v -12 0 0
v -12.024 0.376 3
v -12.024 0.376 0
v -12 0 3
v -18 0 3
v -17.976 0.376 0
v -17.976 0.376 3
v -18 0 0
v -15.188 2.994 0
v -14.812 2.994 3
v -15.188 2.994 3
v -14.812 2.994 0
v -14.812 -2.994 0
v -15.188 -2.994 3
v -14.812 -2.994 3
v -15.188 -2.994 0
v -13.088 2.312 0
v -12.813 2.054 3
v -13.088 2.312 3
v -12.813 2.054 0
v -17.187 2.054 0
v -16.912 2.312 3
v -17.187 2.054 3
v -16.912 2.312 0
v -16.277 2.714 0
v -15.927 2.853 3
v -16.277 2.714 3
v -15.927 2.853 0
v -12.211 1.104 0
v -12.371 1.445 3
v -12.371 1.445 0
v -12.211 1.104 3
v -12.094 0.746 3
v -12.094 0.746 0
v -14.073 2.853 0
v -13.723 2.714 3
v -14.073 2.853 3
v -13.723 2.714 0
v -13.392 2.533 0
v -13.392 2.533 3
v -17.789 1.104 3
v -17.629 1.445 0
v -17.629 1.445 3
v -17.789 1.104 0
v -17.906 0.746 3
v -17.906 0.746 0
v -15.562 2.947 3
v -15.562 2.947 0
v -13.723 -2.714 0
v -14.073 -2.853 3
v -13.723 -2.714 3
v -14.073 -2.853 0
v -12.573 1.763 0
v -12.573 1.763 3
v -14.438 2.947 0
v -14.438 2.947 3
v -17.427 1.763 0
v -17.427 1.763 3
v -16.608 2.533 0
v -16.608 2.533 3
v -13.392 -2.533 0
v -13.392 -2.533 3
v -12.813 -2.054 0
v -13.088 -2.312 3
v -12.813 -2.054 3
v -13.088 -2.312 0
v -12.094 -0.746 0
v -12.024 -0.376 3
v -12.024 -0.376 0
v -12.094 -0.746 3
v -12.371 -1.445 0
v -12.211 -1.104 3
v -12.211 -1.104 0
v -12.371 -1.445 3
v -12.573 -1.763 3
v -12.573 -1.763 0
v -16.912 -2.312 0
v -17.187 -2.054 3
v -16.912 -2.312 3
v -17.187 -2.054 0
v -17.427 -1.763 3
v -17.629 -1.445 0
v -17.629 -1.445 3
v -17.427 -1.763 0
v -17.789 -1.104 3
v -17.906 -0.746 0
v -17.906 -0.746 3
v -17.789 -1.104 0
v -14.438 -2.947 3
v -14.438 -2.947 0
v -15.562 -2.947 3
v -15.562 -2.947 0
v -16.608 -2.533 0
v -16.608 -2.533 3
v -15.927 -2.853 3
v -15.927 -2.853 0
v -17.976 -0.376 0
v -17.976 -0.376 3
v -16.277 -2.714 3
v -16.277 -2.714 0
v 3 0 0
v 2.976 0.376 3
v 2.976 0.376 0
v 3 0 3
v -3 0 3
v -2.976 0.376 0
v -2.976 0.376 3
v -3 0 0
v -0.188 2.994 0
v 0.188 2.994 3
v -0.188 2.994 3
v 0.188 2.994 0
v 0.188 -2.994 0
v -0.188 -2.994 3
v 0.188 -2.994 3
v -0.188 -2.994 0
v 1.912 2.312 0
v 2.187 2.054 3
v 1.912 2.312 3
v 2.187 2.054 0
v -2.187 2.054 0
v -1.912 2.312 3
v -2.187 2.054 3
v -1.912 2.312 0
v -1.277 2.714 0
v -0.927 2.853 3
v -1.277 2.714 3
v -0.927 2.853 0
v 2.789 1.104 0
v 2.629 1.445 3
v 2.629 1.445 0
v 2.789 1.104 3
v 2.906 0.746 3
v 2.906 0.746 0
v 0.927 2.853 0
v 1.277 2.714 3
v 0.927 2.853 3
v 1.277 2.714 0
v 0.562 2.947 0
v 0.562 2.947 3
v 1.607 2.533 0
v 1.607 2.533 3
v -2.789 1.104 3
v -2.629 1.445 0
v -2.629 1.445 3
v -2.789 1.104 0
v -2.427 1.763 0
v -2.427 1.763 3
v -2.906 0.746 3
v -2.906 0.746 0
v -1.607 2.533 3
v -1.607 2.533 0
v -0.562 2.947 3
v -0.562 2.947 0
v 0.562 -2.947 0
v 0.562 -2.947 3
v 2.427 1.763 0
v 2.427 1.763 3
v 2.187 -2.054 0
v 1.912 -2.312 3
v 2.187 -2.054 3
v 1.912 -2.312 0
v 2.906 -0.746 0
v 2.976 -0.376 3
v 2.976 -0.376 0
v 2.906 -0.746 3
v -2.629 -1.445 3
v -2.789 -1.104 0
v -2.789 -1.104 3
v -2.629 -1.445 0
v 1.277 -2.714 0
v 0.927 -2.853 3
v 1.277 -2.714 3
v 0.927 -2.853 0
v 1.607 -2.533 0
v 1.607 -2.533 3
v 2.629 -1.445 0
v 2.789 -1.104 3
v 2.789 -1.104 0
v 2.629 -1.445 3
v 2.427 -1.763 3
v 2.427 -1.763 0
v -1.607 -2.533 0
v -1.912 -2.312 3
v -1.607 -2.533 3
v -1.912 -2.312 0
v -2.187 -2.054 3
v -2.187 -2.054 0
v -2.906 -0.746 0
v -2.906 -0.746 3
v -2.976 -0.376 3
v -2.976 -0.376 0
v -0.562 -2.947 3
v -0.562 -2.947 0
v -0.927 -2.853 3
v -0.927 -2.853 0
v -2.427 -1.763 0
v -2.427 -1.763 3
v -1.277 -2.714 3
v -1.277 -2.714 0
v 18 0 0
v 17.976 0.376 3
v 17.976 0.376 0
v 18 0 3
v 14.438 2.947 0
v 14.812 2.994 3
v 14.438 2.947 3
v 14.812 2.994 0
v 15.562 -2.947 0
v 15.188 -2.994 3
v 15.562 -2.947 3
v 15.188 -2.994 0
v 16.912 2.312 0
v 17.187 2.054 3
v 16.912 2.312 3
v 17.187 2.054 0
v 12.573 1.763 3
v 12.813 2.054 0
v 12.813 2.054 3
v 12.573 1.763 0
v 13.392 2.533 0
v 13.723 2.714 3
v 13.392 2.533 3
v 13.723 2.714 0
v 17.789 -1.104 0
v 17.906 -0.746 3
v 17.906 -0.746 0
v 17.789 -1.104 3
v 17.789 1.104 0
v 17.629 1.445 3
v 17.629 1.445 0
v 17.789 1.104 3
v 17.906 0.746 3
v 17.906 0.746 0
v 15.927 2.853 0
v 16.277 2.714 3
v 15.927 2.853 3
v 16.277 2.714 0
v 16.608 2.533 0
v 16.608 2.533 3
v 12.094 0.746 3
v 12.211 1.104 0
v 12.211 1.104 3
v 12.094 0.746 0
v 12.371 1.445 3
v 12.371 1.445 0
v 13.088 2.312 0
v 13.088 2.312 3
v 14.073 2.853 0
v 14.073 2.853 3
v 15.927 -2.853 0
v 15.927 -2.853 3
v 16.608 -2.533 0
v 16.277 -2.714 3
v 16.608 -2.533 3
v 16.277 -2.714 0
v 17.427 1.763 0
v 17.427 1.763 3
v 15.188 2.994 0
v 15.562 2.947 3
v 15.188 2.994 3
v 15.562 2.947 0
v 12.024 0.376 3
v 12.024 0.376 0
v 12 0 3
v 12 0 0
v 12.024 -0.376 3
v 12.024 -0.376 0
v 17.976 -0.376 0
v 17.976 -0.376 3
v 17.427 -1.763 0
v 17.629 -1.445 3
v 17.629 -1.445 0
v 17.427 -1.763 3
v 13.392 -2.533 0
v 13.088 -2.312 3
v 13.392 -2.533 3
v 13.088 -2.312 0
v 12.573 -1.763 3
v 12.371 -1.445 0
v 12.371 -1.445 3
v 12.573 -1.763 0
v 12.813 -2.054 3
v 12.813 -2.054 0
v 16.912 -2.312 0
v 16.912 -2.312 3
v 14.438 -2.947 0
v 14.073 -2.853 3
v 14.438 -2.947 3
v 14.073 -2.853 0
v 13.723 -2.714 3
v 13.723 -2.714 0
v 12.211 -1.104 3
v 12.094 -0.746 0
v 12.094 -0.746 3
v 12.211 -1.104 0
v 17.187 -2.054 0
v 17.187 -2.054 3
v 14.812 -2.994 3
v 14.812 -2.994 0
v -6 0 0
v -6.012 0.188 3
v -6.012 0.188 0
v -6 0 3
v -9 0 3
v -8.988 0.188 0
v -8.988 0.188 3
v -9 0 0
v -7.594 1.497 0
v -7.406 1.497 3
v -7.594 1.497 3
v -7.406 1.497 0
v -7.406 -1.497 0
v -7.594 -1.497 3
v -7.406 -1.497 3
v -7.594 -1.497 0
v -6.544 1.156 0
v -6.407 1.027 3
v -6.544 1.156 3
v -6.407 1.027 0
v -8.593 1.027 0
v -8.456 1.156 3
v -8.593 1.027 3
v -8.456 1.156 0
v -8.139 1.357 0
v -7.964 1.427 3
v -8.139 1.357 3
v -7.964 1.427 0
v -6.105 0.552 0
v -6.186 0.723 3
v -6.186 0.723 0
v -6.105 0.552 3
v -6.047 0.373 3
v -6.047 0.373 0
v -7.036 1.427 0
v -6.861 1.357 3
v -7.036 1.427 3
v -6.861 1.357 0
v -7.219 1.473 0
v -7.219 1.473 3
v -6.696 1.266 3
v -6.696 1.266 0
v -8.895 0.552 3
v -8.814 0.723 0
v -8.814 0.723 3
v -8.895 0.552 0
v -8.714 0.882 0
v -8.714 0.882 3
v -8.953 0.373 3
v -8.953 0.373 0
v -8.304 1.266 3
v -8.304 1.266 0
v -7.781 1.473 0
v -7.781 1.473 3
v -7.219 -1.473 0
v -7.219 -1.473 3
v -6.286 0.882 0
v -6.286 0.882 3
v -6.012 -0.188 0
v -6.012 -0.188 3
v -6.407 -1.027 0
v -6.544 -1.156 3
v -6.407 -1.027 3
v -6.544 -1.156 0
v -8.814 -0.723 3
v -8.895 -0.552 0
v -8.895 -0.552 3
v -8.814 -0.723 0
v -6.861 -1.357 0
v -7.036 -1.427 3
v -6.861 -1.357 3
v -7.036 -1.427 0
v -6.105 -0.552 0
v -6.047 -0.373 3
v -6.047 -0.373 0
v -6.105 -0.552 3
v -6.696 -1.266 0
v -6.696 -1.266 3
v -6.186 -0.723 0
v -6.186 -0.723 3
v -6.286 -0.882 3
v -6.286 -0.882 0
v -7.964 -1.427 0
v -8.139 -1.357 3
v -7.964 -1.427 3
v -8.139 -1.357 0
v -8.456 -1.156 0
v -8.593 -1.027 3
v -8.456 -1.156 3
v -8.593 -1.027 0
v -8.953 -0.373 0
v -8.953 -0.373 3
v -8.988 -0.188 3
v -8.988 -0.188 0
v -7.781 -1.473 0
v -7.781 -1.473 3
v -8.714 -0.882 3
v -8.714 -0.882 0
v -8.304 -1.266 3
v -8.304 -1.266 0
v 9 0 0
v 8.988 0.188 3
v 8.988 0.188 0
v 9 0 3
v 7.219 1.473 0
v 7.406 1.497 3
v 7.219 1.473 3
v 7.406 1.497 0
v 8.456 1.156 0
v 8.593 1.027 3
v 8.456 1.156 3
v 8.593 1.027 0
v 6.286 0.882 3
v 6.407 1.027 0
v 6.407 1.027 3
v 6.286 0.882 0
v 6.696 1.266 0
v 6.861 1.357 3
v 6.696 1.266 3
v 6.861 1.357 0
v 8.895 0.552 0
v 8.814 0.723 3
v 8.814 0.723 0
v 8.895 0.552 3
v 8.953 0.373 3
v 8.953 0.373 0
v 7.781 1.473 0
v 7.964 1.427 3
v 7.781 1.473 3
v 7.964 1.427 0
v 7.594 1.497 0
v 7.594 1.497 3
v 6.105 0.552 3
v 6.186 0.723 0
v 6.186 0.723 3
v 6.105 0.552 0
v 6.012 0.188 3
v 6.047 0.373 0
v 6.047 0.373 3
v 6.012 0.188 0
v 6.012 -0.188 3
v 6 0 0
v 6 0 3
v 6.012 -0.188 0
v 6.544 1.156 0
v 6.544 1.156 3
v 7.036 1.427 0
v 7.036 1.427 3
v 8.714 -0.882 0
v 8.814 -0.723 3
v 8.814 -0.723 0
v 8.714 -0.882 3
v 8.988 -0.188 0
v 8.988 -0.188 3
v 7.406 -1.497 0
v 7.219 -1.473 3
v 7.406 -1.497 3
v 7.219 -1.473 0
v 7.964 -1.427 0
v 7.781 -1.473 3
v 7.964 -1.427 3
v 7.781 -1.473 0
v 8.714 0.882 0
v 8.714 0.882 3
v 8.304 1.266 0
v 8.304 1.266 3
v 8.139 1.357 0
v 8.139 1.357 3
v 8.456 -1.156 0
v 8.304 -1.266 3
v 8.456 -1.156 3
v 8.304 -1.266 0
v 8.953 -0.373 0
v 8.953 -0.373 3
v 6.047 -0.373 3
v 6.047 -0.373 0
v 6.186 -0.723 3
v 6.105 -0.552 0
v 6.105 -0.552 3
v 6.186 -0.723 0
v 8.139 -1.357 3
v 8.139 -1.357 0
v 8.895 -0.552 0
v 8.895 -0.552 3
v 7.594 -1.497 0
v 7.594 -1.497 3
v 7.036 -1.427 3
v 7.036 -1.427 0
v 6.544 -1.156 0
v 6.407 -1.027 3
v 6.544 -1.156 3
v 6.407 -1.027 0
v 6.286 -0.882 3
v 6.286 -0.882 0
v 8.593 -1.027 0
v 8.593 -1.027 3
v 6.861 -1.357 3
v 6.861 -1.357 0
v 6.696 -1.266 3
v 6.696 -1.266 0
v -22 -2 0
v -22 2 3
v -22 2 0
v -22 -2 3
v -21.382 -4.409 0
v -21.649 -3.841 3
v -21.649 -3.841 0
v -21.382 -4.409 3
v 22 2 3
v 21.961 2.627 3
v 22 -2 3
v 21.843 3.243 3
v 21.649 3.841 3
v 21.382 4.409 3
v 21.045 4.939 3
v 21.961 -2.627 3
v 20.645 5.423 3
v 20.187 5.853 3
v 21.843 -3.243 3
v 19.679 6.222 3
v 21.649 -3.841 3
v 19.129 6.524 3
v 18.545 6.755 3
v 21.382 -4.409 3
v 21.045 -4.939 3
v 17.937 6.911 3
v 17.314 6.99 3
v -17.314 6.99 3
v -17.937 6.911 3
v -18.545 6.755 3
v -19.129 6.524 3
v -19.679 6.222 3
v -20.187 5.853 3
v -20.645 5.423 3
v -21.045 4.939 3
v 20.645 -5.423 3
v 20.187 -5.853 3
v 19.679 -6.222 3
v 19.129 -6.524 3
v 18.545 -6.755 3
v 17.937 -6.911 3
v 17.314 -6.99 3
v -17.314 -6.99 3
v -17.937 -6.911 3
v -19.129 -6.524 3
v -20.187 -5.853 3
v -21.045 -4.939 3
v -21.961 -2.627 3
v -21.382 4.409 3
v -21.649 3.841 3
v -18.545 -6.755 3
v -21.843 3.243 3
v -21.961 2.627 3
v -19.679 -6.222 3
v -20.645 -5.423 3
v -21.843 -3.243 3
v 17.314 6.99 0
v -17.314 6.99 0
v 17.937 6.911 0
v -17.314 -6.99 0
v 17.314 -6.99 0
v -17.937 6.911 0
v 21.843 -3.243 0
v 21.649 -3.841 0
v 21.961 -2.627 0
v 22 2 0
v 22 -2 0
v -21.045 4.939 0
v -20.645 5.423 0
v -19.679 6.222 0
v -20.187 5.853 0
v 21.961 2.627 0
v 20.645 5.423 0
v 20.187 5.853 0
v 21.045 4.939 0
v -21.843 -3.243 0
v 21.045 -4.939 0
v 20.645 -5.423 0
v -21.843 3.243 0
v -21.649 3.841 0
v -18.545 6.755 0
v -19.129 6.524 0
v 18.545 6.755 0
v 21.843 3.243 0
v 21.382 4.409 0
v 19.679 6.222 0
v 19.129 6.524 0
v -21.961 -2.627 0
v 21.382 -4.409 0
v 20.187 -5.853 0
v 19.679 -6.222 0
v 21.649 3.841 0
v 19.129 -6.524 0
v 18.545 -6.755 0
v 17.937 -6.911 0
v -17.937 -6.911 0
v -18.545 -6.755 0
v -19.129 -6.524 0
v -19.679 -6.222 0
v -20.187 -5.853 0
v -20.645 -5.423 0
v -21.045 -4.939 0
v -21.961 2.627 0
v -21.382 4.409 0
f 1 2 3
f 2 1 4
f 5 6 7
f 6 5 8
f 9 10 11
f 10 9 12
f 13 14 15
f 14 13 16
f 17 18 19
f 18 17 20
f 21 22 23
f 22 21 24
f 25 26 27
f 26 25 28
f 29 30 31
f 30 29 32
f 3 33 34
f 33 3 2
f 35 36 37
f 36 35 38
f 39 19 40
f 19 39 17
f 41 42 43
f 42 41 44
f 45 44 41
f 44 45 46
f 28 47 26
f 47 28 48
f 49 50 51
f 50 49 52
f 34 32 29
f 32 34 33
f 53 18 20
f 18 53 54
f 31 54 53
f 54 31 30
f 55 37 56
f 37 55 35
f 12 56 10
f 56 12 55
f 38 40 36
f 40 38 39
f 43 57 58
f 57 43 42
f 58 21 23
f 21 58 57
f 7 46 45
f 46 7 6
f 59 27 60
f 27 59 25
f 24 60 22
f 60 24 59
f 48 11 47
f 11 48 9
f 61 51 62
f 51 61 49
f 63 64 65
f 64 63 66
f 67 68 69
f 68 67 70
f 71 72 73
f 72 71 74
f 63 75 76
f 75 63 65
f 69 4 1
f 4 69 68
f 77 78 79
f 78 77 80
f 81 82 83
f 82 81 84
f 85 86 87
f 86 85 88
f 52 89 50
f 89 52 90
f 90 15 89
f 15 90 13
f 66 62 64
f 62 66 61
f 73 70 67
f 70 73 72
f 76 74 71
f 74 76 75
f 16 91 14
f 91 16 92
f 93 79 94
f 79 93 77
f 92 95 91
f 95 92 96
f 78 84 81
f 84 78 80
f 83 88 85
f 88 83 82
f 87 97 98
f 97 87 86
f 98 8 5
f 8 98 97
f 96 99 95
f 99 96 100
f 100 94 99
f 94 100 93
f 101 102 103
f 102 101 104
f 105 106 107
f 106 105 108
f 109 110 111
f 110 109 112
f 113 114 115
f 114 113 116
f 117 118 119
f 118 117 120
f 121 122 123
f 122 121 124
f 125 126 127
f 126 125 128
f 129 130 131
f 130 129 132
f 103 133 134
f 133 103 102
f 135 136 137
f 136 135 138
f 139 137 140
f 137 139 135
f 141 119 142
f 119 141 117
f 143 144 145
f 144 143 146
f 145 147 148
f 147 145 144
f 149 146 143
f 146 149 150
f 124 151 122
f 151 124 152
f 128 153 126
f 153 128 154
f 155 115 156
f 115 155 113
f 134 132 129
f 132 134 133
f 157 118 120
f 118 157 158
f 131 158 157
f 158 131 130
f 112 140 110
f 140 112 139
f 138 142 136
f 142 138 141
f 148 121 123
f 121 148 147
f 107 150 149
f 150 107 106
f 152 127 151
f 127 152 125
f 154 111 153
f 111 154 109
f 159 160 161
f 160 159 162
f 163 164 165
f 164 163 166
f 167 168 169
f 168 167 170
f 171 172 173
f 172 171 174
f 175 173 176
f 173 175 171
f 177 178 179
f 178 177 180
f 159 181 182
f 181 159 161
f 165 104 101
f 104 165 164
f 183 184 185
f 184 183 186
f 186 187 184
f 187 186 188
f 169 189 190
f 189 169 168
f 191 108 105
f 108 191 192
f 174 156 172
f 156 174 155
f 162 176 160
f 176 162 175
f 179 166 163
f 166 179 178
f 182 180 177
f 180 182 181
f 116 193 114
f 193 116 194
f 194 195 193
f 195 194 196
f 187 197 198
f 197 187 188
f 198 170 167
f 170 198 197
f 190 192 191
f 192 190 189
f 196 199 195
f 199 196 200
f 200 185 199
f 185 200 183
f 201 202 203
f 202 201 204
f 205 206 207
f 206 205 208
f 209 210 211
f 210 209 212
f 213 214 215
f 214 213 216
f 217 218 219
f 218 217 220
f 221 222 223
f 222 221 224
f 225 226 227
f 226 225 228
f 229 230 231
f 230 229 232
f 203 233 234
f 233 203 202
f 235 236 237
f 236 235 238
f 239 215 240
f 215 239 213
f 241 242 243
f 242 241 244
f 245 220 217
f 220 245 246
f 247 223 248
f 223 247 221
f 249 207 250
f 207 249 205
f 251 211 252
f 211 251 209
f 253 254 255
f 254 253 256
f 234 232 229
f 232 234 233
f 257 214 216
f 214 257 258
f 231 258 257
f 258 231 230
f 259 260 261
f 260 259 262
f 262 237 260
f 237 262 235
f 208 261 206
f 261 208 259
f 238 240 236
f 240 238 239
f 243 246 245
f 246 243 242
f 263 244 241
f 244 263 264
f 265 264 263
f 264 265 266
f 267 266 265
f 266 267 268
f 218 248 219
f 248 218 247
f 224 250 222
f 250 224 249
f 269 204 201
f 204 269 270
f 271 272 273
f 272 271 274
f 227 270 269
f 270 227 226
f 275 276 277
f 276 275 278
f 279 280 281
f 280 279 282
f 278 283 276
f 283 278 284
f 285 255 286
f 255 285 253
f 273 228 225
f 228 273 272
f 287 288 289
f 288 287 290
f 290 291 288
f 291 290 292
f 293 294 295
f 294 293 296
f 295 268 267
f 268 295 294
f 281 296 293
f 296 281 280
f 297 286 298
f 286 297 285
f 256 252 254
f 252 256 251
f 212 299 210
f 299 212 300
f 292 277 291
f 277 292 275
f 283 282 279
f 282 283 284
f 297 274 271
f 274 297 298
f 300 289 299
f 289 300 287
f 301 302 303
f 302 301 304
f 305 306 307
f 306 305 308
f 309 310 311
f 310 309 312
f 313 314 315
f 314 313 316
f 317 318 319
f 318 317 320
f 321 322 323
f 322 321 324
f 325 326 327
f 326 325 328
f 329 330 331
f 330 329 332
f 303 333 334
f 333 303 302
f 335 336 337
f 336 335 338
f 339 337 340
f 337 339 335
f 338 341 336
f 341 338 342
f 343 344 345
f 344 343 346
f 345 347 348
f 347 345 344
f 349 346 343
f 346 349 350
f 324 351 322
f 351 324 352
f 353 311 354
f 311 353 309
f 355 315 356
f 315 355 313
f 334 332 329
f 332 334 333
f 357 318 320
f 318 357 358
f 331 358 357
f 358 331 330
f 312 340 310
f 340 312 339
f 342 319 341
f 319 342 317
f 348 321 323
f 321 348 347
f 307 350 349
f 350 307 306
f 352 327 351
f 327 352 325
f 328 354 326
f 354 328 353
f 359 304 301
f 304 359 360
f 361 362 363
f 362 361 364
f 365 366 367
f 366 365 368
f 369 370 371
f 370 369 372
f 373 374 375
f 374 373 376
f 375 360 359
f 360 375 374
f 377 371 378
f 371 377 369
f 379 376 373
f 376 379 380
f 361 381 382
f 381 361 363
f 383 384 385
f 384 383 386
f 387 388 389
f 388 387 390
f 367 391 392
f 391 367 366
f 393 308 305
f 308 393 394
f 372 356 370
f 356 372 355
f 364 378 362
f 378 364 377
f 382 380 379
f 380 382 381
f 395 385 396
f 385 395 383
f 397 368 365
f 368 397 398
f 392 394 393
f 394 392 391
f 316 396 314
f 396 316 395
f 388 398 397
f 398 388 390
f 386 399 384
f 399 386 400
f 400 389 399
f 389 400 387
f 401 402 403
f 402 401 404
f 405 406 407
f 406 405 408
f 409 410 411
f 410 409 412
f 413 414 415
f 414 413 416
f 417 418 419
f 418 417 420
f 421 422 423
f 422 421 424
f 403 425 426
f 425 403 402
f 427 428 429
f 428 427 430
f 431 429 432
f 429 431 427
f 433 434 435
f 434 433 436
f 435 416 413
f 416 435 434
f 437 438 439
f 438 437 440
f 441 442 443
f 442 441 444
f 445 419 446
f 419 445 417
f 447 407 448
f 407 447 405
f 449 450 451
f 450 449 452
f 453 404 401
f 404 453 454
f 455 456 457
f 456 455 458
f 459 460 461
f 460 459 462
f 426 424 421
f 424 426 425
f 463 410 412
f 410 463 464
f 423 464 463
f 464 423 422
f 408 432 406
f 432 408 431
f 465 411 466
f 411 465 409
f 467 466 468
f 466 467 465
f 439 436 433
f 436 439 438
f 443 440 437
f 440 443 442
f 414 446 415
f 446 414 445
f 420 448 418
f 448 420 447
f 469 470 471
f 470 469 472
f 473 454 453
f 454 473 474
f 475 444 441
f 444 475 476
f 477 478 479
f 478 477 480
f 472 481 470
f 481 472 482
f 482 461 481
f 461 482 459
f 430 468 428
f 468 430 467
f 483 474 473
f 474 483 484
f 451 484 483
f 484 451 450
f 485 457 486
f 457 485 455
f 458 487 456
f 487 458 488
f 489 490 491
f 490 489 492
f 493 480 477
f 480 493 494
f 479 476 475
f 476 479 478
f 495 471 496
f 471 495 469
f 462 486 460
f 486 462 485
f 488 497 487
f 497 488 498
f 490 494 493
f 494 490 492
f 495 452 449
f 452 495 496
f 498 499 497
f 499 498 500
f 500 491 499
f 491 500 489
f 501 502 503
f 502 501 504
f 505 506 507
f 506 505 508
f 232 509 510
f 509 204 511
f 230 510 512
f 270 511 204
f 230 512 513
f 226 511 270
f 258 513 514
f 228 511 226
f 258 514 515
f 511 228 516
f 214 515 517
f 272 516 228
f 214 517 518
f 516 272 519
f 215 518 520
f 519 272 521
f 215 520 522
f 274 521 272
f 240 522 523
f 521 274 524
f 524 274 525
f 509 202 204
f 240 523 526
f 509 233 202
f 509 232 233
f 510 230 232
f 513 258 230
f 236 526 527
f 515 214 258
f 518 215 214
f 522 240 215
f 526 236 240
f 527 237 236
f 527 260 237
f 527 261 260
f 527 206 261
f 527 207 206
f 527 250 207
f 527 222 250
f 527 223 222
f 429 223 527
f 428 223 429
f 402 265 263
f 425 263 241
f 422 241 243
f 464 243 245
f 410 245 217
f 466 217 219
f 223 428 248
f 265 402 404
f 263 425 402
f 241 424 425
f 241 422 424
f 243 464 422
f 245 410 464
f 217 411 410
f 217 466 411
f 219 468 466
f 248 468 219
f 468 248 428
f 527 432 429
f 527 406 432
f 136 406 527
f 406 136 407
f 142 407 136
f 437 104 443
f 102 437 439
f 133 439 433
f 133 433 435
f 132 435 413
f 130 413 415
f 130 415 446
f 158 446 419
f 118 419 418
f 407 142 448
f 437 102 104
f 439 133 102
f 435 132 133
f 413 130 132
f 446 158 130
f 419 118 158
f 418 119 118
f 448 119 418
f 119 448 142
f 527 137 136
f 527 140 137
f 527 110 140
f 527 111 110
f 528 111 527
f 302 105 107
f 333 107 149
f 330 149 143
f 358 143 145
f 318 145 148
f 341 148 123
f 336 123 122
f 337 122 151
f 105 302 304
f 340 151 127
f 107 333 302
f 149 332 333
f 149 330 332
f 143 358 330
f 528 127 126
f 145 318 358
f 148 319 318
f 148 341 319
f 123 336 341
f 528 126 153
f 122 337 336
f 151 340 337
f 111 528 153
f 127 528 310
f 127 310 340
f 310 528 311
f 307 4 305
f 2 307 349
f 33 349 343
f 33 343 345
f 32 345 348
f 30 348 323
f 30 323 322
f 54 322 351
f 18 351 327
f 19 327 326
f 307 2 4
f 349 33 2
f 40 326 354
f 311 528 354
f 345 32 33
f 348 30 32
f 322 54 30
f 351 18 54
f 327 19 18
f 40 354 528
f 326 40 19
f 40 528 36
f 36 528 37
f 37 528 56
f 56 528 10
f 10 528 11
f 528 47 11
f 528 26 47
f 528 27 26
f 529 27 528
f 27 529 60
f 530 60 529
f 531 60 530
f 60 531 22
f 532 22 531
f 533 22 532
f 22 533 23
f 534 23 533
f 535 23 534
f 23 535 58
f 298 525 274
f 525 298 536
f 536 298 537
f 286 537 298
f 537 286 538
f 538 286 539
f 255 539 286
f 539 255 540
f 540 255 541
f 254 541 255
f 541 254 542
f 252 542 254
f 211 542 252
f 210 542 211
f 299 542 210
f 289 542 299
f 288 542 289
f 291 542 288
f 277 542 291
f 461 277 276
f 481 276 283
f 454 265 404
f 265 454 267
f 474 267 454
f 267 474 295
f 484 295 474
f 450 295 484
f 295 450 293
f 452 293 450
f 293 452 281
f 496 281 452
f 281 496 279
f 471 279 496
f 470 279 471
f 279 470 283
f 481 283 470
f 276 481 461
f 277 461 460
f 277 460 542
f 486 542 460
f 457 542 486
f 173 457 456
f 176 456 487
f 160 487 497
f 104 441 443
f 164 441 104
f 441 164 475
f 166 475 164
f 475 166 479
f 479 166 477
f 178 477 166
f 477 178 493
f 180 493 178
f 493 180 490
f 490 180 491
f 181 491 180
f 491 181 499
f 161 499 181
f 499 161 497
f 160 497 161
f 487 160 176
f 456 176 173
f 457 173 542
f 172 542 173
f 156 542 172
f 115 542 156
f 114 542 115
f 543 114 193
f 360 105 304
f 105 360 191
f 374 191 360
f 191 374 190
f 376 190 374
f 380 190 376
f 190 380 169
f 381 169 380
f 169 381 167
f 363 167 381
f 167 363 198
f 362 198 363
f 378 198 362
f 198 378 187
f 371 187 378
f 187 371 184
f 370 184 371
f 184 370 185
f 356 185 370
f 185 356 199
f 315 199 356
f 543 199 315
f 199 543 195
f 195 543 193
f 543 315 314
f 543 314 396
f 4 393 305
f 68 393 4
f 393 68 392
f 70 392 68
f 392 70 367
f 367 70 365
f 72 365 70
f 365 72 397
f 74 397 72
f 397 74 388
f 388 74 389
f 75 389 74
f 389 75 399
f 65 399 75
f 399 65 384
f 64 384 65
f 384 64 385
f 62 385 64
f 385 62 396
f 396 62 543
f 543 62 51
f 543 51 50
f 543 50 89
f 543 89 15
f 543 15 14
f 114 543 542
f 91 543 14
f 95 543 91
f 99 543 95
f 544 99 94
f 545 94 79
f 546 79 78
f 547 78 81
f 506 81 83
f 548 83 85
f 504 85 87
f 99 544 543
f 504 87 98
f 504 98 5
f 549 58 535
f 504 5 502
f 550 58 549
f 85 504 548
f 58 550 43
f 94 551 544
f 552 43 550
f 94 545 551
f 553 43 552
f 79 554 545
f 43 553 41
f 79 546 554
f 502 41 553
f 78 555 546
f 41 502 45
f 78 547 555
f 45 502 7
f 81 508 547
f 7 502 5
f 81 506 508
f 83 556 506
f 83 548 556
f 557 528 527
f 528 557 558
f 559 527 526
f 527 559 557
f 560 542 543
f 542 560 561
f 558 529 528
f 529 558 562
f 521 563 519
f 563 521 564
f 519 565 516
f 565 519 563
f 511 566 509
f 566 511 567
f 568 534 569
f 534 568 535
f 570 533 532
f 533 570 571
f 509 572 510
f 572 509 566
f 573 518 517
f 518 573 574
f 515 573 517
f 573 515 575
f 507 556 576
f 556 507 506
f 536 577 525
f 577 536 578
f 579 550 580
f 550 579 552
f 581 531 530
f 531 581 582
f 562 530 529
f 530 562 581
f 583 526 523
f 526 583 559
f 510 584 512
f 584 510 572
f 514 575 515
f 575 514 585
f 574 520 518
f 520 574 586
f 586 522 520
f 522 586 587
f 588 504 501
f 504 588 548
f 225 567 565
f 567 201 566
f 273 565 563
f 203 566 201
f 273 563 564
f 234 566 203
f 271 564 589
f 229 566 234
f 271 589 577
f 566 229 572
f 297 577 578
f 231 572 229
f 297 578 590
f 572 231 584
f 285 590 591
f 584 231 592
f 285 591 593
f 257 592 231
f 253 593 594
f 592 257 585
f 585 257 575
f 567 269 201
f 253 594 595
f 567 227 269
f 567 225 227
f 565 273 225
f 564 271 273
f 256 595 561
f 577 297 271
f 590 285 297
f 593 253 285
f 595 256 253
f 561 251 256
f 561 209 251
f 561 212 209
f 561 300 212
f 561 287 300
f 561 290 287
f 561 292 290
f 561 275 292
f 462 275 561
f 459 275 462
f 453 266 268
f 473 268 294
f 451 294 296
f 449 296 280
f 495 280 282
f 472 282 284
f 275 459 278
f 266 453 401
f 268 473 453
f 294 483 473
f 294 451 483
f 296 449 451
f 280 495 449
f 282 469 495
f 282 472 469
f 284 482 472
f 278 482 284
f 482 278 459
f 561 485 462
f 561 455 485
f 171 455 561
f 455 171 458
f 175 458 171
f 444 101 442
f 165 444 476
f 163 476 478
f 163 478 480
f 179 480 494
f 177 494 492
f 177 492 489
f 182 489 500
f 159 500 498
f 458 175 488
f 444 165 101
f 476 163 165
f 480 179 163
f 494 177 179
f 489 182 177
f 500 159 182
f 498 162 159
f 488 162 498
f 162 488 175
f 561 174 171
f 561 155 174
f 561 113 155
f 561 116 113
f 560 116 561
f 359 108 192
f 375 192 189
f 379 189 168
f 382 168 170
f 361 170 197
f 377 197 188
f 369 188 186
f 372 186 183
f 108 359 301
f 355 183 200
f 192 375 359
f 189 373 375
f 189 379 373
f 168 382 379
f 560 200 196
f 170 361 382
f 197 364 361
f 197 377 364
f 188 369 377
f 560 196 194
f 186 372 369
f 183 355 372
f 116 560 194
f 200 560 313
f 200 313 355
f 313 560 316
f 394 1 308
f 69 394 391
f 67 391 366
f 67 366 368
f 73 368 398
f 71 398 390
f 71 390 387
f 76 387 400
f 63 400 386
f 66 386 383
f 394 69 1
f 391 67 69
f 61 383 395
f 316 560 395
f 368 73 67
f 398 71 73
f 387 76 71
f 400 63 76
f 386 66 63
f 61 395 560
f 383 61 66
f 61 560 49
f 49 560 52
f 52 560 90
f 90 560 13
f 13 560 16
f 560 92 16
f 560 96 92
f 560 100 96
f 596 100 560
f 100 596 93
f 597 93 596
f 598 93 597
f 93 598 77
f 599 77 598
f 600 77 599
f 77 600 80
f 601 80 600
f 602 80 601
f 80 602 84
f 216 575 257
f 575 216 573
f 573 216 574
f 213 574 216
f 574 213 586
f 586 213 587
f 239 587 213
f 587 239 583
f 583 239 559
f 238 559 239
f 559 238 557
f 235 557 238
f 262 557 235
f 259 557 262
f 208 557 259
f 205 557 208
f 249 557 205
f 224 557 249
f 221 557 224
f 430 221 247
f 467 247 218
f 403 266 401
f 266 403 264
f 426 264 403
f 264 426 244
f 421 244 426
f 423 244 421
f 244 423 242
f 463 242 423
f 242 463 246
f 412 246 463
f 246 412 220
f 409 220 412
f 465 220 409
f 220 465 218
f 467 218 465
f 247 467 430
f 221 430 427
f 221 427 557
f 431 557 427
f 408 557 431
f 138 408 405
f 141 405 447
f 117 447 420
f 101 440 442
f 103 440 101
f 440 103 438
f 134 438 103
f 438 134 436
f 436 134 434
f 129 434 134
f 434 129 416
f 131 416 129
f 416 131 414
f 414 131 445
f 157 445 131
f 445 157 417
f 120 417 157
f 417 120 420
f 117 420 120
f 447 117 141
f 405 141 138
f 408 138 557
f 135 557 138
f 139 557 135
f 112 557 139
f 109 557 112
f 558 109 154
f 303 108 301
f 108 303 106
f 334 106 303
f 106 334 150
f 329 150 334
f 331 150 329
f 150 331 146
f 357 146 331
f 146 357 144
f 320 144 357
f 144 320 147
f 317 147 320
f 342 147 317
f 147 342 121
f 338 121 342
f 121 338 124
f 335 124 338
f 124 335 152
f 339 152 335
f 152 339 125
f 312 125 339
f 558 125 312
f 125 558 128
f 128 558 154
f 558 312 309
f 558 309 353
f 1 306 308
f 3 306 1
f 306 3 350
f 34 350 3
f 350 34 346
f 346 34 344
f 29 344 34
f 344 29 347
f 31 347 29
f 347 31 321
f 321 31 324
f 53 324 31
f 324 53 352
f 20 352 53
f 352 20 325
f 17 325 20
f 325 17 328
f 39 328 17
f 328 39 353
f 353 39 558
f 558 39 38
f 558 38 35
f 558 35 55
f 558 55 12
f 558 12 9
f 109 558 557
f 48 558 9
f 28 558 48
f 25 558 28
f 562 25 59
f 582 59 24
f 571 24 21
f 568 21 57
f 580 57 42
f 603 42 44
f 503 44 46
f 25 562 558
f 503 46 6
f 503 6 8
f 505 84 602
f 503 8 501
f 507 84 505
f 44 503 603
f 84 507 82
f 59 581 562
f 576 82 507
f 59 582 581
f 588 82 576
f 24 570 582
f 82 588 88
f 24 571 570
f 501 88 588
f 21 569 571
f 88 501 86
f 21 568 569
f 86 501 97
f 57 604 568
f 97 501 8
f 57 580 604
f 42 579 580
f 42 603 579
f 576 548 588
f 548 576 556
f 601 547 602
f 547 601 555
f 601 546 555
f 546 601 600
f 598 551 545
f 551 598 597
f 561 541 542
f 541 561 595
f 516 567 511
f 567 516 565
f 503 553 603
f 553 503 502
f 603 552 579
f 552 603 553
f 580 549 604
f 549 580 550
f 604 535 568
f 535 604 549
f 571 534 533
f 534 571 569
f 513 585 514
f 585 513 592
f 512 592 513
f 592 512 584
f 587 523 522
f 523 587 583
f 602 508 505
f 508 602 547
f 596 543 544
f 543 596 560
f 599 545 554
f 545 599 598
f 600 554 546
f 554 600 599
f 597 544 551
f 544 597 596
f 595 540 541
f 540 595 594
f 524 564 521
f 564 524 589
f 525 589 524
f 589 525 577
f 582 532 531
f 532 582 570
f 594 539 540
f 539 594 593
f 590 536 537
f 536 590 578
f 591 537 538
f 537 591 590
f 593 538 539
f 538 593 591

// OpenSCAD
$fn = 50;


difference() {
	union() {
		translate(v = [0, 0, 0]) {
			rotate(a = [0, 0, 0]) {
				hull() {
					translate(v = [-17.0000000000, 2.0000000000, 0]) {
						rotate(a = [0, 0, 0]) {
							translate(v = [0, 0, 0]) {
								rotate(a = [0, 0, 0]) {
									cylinder(h = 3, r = 5);
								}
							}
						}
					}
					translate(v = [17.0000000000, 2.0000000000, 0]) {
						rotate(a = [0, 0, 0]) {
							translate(v = [0, 0, 0]) {
								rotate(a = [0, 0, 0]) {
									cylinder(h = 3, r = 5);
								}
							}
						}
					}
					translate(v = [-17.0000000000, -2.0000000000, 0]) {
						rotate(a = [0, 0, 0]) {
							translate(v = [0, 0, 0]) {
								rotate(a = [0, 0, 0]) {
									cylinder(h = 3, r = 5);
								}
							}
						}
					}
					translate(v = [17.0000000000, -2.0000000000, 0]) {
						rotate(a = [0, 0, 0]) {
							translate(v = [0, 0, 0]) {
								rotate(a = [0, 0, 0]) {
									cylinder(h = 3, r = 5);
								}
							}
						}
					}
				}
			}
		}
	}
	union() {
		translate(v = [-15.0000000000, 0.0000000000, 0]) {
			rotate(a = [0, 0, 0]) {
				translate(v = [0, 0, -50]) {
					rotate(a = [0, 0, 0]) {
						cylinder(h = 100, r = 3.0000000000);
					}
				}
			}
		}
		translate(v = [0.0000000000, 0.0000000000, 0]) {
			rotate(a = [0, 0, 0]) {
				translate(v = [0, 0, -50]) {
					rotate(a = [0, 0, 0]) {
						cylinder(h = 100, r = 3.0000000000);
					}
				}
			}
		}
		translate(v = [15.0000000000, 0.0000000000, 0]) {
			rotate(a = [0, 0, 0]) {
				translate(v = [0, 0, -50]) {
					rotate(a = [0, 0, 0]) {
						cylinder(h = 100, r = 3.0000000000);
					}
				}
			}
		}
		translate(v = [-15.0000000000, 0.0000000000, 0]) {
			rotate(a = [0, 0, 0]) {
				translate(v = [0, 0, -50]) {
					rotate(a = [0, 0, 0]) {
						cylinder(h = 100, r = 1.5000000000);
					}
				}
			}
		}
		translate(v = [-7.5000000000, 0.0000000000, 0]) {
			rotate(a = [0, 0, 0]) {
				translate(v = [0, 0, -50]) {
					rotate(a = [0, 0, 0]) {
						cylinder(h = 100, r = 1.5000000000);
					}
				}
			}
		}
		translate(v = [0.0000000000, 0.0000000000, 0]) {
			rotate(a = [0, 0, 0]) {
				translate(v = [0, 0, -50]) {
					rotate(a = [0, 0, 0]) {
						cylinder(h = 100, r = 1.5000000000);
					}
				}
			}
		}
		translate(v = [7.5000000000, 0.0000000000, 0]) {
			rotate(a = [0, 0, 0]) {
				translate(v = [0, 0, -50]) {
					rotate(a = [0, 0, 0]) {
						cylinder(h = 100, r = 1.5000000000);
					}
				}
			}
		}
		translate(v = [15.0000000000, 0.0000000000, 0]) {
			rotate(a = [0, 0, 0]) {
				translate(v = [0, 0, -50]) {
					rotate(a = [0, 0, 0]) {
						cylinder(h = 100, r = 1.5000000000);
					}
				}
			}
		}
	}
}
